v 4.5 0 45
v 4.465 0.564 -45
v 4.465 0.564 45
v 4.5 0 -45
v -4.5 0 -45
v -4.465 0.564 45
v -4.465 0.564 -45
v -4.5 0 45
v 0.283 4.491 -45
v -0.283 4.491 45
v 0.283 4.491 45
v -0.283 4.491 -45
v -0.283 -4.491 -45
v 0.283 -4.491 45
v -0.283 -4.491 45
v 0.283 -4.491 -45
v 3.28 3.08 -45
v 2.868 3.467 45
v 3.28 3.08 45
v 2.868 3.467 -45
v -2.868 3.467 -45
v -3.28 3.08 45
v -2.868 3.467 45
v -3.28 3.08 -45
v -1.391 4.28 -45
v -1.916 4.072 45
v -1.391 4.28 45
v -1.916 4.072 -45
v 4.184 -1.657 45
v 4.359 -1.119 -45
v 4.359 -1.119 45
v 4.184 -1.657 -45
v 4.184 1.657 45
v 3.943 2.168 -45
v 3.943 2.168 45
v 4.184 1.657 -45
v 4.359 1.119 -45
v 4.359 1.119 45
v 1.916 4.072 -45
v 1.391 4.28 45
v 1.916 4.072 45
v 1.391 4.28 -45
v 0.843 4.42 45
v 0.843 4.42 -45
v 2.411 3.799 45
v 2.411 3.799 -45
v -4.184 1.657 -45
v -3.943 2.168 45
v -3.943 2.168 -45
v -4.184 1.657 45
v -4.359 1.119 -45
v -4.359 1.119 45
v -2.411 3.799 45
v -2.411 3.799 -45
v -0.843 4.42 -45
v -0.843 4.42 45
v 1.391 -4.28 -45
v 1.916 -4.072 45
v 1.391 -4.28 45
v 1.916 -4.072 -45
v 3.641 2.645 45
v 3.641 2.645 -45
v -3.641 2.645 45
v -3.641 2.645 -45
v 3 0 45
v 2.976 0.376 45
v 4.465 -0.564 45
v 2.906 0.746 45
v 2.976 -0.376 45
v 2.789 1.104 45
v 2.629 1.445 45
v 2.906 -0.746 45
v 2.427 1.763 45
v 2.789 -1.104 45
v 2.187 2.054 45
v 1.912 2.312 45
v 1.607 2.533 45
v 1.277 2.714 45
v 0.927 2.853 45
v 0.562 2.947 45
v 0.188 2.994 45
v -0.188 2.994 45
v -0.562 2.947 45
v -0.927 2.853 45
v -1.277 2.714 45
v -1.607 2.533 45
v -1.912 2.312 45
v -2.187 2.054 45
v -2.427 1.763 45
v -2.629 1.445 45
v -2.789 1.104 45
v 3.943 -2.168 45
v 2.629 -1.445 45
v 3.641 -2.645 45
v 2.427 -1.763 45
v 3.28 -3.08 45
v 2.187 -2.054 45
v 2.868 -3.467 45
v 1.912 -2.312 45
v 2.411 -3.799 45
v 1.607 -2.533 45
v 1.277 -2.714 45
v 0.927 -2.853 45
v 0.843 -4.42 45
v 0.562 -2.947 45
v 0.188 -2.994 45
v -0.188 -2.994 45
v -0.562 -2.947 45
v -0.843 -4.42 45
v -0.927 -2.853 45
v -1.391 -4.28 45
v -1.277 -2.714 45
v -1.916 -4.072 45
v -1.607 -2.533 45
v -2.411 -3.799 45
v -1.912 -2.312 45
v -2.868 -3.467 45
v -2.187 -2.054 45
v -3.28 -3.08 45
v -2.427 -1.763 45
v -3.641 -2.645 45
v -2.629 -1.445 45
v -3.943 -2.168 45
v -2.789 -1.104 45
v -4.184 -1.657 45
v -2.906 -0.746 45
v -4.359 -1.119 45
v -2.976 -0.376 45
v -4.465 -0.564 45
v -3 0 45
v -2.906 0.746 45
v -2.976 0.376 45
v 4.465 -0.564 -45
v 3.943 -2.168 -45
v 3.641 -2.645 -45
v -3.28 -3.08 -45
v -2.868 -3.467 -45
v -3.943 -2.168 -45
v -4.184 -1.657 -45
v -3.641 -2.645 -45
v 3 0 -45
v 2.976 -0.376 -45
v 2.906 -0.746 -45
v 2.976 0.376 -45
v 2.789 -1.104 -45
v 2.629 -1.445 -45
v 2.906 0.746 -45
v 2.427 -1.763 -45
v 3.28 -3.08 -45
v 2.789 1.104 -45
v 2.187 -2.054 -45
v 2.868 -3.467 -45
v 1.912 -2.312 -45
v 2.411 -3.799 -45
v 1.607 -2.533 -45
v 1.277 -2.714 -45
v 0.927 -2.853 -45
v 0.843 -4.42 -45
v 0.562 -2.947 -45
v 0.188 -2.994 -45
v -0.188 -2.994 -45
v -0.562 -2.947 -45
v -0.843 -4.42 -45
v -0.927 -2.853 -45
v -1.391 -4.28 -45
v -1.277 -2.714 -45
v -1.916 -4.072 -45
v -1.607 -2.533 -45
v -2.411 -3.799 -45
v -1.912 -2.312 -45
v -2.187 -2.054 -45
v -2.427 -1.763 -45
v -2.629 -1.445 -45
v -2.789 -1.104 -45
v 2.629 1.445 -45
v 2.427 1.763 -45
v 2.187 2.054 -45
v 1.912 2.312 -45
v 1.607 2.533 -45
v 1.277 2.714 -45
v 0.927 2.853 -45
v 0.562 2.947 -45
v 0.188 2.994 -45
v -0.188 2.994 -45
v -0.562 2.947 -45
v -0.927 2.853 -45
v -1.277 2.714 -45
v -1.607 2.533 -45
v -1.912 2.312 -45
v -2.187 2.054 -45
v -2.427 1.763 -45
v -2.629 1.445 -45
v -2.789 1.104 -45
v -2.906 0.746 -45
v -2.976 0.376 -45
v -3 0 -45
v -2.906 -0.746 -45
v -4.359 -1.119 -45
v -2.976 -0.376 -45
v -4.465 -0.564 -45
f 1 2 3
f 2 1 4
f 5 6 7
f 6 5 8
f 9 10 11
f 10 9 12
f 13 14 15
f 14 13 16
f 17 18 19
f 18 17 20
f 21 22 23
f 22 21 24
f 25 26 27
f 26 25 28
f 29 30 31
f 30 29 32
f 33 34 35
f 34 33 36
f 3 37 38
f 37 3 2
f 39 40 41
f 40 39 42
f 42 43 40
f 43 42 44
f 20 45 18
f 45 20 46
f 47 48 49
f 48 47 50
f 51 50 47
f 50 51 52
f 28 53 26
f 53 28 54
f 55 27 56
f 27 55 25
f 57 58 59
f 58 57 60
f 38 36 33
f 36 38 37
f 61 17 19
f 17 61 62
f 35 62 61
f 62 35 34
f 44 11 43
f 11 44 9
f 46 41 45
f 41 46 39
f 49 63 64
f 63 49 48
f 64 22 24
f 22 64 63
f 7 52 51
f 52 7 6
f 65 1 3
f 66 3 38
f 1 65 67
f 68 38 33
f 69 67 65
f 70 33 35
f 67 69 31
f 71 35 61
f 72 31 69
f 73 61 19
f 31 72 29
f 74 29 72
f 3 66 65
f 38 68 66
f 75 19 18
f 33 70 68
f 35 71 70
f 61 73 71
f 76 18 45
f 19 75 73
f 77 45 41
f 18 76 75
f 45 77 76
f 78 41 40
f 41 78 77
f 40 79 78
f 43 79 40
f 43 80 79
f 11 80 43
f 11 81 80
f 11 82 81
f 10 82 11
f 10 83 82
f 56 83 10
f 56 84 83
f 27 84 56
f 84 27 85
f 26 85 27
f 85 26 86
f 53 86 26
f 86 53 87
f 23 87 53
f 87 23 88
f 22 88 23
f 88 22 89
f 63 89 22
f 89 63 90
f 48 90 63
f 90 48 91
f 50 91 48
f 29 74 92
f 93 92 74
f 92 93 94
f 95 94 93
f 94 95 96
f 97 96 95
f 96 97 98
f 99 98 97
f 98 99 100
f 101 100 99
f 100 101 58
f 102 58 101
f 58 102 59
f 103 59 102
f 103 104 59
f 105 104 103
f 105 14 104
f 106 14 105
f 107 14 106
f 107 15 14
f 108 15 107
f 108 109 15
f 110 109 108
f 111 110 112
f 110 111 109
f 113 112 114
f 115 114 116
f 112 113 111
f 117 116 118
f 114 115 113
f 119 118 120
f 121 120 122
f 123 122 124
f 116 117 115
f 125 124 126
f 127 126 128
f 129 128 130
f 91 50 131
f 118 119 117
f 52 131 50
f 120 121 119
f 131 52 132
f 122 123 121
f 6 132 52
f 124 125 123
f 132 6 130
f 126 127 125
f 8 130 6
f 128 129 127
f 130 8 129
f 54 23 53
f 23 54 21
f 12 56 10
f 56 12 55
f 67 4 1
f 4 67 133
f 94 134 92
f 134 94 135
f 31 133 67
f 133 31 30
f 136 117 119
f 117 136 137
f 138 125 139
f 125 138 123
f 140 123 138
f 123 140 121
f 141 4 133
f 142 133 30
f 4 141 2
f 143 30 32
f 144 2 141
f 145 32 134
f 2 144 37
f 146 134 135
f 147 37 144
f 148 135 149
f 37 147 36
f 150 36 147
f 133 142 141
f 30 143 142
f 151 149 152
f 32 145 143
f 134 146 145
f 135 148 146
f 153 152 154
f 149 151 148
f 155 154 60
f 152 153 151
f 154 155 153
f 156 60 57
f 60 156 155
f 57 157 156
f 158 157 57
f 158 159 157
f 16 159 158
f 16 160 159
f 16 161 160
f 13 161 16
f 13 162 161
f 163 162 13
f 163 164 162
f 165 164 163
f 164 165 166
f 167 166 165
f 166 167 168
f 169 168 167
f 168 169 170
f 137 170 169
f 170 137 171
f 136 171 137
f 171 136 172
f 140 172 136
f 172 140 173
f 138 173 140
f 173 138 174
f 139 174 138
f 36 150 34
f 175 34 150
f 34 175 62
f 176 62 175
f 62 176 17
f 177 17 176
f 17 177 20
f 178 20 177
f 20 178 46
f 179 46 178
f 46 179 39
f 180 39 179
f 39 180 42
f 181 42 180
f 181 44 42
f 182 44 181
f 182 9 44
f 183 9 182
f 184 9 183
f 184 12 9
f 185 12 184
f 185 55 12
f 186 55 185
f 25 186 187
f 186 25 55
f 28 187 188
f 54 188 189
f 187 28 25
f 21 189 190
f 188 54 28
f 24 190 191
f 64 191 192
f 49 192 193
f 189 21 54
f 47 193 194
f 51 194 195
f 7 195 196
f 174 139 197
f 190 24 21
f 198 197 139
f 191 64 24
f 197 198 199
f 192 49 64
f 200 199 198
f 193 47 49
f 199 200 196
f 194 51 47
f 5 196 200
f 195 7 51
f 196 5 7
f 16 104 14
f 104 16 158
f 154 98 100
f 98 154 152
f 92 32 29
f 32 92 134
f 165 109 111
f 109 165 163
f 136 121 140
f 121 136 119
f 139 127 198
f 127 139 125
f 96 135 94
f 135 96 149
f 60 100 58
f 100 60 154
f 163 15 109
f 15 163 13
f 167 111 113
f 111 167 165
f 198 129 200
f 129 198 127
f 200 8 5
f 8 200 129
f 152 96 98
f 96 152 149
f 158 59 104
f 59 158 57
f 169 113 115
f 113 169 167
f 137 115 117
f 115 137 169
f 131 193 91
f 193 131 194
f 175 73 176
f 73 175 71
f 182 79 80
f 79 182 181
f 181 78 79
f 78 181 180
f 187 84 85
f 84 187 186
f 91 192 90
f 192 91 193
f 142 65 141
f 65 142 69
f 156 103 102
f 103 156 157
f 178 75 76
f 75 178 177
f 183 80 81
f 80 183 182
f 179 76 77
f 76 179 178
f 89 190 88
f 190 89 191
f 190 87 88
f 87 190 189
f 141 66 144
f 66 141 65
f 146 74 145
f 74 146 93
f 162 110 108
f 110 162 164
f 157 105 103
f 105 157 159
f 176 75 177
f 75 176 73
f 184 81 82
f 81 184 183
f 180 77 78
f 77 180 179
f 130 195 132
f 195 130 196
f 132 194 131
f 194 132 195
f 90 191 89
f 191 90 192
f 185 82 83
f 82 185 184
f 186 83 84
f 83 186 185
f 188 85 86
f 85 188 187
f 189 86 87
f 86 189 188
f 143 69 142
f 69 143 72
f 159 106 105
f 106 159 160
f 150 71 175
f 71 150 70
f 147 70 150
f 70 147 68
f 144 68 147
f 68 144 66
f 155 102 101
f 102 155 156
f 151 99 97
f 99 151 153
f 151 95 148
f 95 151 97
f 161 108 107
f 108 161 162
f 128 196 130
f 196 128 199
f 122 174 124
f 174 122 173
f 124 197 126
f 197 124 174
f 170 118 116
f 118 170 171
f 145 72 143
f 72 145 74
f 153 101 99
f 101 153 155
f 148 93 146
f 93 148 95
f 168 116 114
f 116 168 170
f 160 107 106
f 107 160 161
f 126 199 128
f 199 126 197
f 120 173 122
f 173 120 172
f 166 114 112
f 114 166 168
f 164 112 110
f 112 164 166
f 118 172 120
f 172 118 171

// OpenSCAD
$fn = 50;


difference() {
	union() {
		translate(v = [0, 0, -45.0000000000]) {
			cylinder(h = 90, r = 4.5000000000);
		}
	}
	union() {
		translate(v = [0, 0, -100.0000000000]) {
			cylinder(h = 200, r = 3);
		}
	}
}
